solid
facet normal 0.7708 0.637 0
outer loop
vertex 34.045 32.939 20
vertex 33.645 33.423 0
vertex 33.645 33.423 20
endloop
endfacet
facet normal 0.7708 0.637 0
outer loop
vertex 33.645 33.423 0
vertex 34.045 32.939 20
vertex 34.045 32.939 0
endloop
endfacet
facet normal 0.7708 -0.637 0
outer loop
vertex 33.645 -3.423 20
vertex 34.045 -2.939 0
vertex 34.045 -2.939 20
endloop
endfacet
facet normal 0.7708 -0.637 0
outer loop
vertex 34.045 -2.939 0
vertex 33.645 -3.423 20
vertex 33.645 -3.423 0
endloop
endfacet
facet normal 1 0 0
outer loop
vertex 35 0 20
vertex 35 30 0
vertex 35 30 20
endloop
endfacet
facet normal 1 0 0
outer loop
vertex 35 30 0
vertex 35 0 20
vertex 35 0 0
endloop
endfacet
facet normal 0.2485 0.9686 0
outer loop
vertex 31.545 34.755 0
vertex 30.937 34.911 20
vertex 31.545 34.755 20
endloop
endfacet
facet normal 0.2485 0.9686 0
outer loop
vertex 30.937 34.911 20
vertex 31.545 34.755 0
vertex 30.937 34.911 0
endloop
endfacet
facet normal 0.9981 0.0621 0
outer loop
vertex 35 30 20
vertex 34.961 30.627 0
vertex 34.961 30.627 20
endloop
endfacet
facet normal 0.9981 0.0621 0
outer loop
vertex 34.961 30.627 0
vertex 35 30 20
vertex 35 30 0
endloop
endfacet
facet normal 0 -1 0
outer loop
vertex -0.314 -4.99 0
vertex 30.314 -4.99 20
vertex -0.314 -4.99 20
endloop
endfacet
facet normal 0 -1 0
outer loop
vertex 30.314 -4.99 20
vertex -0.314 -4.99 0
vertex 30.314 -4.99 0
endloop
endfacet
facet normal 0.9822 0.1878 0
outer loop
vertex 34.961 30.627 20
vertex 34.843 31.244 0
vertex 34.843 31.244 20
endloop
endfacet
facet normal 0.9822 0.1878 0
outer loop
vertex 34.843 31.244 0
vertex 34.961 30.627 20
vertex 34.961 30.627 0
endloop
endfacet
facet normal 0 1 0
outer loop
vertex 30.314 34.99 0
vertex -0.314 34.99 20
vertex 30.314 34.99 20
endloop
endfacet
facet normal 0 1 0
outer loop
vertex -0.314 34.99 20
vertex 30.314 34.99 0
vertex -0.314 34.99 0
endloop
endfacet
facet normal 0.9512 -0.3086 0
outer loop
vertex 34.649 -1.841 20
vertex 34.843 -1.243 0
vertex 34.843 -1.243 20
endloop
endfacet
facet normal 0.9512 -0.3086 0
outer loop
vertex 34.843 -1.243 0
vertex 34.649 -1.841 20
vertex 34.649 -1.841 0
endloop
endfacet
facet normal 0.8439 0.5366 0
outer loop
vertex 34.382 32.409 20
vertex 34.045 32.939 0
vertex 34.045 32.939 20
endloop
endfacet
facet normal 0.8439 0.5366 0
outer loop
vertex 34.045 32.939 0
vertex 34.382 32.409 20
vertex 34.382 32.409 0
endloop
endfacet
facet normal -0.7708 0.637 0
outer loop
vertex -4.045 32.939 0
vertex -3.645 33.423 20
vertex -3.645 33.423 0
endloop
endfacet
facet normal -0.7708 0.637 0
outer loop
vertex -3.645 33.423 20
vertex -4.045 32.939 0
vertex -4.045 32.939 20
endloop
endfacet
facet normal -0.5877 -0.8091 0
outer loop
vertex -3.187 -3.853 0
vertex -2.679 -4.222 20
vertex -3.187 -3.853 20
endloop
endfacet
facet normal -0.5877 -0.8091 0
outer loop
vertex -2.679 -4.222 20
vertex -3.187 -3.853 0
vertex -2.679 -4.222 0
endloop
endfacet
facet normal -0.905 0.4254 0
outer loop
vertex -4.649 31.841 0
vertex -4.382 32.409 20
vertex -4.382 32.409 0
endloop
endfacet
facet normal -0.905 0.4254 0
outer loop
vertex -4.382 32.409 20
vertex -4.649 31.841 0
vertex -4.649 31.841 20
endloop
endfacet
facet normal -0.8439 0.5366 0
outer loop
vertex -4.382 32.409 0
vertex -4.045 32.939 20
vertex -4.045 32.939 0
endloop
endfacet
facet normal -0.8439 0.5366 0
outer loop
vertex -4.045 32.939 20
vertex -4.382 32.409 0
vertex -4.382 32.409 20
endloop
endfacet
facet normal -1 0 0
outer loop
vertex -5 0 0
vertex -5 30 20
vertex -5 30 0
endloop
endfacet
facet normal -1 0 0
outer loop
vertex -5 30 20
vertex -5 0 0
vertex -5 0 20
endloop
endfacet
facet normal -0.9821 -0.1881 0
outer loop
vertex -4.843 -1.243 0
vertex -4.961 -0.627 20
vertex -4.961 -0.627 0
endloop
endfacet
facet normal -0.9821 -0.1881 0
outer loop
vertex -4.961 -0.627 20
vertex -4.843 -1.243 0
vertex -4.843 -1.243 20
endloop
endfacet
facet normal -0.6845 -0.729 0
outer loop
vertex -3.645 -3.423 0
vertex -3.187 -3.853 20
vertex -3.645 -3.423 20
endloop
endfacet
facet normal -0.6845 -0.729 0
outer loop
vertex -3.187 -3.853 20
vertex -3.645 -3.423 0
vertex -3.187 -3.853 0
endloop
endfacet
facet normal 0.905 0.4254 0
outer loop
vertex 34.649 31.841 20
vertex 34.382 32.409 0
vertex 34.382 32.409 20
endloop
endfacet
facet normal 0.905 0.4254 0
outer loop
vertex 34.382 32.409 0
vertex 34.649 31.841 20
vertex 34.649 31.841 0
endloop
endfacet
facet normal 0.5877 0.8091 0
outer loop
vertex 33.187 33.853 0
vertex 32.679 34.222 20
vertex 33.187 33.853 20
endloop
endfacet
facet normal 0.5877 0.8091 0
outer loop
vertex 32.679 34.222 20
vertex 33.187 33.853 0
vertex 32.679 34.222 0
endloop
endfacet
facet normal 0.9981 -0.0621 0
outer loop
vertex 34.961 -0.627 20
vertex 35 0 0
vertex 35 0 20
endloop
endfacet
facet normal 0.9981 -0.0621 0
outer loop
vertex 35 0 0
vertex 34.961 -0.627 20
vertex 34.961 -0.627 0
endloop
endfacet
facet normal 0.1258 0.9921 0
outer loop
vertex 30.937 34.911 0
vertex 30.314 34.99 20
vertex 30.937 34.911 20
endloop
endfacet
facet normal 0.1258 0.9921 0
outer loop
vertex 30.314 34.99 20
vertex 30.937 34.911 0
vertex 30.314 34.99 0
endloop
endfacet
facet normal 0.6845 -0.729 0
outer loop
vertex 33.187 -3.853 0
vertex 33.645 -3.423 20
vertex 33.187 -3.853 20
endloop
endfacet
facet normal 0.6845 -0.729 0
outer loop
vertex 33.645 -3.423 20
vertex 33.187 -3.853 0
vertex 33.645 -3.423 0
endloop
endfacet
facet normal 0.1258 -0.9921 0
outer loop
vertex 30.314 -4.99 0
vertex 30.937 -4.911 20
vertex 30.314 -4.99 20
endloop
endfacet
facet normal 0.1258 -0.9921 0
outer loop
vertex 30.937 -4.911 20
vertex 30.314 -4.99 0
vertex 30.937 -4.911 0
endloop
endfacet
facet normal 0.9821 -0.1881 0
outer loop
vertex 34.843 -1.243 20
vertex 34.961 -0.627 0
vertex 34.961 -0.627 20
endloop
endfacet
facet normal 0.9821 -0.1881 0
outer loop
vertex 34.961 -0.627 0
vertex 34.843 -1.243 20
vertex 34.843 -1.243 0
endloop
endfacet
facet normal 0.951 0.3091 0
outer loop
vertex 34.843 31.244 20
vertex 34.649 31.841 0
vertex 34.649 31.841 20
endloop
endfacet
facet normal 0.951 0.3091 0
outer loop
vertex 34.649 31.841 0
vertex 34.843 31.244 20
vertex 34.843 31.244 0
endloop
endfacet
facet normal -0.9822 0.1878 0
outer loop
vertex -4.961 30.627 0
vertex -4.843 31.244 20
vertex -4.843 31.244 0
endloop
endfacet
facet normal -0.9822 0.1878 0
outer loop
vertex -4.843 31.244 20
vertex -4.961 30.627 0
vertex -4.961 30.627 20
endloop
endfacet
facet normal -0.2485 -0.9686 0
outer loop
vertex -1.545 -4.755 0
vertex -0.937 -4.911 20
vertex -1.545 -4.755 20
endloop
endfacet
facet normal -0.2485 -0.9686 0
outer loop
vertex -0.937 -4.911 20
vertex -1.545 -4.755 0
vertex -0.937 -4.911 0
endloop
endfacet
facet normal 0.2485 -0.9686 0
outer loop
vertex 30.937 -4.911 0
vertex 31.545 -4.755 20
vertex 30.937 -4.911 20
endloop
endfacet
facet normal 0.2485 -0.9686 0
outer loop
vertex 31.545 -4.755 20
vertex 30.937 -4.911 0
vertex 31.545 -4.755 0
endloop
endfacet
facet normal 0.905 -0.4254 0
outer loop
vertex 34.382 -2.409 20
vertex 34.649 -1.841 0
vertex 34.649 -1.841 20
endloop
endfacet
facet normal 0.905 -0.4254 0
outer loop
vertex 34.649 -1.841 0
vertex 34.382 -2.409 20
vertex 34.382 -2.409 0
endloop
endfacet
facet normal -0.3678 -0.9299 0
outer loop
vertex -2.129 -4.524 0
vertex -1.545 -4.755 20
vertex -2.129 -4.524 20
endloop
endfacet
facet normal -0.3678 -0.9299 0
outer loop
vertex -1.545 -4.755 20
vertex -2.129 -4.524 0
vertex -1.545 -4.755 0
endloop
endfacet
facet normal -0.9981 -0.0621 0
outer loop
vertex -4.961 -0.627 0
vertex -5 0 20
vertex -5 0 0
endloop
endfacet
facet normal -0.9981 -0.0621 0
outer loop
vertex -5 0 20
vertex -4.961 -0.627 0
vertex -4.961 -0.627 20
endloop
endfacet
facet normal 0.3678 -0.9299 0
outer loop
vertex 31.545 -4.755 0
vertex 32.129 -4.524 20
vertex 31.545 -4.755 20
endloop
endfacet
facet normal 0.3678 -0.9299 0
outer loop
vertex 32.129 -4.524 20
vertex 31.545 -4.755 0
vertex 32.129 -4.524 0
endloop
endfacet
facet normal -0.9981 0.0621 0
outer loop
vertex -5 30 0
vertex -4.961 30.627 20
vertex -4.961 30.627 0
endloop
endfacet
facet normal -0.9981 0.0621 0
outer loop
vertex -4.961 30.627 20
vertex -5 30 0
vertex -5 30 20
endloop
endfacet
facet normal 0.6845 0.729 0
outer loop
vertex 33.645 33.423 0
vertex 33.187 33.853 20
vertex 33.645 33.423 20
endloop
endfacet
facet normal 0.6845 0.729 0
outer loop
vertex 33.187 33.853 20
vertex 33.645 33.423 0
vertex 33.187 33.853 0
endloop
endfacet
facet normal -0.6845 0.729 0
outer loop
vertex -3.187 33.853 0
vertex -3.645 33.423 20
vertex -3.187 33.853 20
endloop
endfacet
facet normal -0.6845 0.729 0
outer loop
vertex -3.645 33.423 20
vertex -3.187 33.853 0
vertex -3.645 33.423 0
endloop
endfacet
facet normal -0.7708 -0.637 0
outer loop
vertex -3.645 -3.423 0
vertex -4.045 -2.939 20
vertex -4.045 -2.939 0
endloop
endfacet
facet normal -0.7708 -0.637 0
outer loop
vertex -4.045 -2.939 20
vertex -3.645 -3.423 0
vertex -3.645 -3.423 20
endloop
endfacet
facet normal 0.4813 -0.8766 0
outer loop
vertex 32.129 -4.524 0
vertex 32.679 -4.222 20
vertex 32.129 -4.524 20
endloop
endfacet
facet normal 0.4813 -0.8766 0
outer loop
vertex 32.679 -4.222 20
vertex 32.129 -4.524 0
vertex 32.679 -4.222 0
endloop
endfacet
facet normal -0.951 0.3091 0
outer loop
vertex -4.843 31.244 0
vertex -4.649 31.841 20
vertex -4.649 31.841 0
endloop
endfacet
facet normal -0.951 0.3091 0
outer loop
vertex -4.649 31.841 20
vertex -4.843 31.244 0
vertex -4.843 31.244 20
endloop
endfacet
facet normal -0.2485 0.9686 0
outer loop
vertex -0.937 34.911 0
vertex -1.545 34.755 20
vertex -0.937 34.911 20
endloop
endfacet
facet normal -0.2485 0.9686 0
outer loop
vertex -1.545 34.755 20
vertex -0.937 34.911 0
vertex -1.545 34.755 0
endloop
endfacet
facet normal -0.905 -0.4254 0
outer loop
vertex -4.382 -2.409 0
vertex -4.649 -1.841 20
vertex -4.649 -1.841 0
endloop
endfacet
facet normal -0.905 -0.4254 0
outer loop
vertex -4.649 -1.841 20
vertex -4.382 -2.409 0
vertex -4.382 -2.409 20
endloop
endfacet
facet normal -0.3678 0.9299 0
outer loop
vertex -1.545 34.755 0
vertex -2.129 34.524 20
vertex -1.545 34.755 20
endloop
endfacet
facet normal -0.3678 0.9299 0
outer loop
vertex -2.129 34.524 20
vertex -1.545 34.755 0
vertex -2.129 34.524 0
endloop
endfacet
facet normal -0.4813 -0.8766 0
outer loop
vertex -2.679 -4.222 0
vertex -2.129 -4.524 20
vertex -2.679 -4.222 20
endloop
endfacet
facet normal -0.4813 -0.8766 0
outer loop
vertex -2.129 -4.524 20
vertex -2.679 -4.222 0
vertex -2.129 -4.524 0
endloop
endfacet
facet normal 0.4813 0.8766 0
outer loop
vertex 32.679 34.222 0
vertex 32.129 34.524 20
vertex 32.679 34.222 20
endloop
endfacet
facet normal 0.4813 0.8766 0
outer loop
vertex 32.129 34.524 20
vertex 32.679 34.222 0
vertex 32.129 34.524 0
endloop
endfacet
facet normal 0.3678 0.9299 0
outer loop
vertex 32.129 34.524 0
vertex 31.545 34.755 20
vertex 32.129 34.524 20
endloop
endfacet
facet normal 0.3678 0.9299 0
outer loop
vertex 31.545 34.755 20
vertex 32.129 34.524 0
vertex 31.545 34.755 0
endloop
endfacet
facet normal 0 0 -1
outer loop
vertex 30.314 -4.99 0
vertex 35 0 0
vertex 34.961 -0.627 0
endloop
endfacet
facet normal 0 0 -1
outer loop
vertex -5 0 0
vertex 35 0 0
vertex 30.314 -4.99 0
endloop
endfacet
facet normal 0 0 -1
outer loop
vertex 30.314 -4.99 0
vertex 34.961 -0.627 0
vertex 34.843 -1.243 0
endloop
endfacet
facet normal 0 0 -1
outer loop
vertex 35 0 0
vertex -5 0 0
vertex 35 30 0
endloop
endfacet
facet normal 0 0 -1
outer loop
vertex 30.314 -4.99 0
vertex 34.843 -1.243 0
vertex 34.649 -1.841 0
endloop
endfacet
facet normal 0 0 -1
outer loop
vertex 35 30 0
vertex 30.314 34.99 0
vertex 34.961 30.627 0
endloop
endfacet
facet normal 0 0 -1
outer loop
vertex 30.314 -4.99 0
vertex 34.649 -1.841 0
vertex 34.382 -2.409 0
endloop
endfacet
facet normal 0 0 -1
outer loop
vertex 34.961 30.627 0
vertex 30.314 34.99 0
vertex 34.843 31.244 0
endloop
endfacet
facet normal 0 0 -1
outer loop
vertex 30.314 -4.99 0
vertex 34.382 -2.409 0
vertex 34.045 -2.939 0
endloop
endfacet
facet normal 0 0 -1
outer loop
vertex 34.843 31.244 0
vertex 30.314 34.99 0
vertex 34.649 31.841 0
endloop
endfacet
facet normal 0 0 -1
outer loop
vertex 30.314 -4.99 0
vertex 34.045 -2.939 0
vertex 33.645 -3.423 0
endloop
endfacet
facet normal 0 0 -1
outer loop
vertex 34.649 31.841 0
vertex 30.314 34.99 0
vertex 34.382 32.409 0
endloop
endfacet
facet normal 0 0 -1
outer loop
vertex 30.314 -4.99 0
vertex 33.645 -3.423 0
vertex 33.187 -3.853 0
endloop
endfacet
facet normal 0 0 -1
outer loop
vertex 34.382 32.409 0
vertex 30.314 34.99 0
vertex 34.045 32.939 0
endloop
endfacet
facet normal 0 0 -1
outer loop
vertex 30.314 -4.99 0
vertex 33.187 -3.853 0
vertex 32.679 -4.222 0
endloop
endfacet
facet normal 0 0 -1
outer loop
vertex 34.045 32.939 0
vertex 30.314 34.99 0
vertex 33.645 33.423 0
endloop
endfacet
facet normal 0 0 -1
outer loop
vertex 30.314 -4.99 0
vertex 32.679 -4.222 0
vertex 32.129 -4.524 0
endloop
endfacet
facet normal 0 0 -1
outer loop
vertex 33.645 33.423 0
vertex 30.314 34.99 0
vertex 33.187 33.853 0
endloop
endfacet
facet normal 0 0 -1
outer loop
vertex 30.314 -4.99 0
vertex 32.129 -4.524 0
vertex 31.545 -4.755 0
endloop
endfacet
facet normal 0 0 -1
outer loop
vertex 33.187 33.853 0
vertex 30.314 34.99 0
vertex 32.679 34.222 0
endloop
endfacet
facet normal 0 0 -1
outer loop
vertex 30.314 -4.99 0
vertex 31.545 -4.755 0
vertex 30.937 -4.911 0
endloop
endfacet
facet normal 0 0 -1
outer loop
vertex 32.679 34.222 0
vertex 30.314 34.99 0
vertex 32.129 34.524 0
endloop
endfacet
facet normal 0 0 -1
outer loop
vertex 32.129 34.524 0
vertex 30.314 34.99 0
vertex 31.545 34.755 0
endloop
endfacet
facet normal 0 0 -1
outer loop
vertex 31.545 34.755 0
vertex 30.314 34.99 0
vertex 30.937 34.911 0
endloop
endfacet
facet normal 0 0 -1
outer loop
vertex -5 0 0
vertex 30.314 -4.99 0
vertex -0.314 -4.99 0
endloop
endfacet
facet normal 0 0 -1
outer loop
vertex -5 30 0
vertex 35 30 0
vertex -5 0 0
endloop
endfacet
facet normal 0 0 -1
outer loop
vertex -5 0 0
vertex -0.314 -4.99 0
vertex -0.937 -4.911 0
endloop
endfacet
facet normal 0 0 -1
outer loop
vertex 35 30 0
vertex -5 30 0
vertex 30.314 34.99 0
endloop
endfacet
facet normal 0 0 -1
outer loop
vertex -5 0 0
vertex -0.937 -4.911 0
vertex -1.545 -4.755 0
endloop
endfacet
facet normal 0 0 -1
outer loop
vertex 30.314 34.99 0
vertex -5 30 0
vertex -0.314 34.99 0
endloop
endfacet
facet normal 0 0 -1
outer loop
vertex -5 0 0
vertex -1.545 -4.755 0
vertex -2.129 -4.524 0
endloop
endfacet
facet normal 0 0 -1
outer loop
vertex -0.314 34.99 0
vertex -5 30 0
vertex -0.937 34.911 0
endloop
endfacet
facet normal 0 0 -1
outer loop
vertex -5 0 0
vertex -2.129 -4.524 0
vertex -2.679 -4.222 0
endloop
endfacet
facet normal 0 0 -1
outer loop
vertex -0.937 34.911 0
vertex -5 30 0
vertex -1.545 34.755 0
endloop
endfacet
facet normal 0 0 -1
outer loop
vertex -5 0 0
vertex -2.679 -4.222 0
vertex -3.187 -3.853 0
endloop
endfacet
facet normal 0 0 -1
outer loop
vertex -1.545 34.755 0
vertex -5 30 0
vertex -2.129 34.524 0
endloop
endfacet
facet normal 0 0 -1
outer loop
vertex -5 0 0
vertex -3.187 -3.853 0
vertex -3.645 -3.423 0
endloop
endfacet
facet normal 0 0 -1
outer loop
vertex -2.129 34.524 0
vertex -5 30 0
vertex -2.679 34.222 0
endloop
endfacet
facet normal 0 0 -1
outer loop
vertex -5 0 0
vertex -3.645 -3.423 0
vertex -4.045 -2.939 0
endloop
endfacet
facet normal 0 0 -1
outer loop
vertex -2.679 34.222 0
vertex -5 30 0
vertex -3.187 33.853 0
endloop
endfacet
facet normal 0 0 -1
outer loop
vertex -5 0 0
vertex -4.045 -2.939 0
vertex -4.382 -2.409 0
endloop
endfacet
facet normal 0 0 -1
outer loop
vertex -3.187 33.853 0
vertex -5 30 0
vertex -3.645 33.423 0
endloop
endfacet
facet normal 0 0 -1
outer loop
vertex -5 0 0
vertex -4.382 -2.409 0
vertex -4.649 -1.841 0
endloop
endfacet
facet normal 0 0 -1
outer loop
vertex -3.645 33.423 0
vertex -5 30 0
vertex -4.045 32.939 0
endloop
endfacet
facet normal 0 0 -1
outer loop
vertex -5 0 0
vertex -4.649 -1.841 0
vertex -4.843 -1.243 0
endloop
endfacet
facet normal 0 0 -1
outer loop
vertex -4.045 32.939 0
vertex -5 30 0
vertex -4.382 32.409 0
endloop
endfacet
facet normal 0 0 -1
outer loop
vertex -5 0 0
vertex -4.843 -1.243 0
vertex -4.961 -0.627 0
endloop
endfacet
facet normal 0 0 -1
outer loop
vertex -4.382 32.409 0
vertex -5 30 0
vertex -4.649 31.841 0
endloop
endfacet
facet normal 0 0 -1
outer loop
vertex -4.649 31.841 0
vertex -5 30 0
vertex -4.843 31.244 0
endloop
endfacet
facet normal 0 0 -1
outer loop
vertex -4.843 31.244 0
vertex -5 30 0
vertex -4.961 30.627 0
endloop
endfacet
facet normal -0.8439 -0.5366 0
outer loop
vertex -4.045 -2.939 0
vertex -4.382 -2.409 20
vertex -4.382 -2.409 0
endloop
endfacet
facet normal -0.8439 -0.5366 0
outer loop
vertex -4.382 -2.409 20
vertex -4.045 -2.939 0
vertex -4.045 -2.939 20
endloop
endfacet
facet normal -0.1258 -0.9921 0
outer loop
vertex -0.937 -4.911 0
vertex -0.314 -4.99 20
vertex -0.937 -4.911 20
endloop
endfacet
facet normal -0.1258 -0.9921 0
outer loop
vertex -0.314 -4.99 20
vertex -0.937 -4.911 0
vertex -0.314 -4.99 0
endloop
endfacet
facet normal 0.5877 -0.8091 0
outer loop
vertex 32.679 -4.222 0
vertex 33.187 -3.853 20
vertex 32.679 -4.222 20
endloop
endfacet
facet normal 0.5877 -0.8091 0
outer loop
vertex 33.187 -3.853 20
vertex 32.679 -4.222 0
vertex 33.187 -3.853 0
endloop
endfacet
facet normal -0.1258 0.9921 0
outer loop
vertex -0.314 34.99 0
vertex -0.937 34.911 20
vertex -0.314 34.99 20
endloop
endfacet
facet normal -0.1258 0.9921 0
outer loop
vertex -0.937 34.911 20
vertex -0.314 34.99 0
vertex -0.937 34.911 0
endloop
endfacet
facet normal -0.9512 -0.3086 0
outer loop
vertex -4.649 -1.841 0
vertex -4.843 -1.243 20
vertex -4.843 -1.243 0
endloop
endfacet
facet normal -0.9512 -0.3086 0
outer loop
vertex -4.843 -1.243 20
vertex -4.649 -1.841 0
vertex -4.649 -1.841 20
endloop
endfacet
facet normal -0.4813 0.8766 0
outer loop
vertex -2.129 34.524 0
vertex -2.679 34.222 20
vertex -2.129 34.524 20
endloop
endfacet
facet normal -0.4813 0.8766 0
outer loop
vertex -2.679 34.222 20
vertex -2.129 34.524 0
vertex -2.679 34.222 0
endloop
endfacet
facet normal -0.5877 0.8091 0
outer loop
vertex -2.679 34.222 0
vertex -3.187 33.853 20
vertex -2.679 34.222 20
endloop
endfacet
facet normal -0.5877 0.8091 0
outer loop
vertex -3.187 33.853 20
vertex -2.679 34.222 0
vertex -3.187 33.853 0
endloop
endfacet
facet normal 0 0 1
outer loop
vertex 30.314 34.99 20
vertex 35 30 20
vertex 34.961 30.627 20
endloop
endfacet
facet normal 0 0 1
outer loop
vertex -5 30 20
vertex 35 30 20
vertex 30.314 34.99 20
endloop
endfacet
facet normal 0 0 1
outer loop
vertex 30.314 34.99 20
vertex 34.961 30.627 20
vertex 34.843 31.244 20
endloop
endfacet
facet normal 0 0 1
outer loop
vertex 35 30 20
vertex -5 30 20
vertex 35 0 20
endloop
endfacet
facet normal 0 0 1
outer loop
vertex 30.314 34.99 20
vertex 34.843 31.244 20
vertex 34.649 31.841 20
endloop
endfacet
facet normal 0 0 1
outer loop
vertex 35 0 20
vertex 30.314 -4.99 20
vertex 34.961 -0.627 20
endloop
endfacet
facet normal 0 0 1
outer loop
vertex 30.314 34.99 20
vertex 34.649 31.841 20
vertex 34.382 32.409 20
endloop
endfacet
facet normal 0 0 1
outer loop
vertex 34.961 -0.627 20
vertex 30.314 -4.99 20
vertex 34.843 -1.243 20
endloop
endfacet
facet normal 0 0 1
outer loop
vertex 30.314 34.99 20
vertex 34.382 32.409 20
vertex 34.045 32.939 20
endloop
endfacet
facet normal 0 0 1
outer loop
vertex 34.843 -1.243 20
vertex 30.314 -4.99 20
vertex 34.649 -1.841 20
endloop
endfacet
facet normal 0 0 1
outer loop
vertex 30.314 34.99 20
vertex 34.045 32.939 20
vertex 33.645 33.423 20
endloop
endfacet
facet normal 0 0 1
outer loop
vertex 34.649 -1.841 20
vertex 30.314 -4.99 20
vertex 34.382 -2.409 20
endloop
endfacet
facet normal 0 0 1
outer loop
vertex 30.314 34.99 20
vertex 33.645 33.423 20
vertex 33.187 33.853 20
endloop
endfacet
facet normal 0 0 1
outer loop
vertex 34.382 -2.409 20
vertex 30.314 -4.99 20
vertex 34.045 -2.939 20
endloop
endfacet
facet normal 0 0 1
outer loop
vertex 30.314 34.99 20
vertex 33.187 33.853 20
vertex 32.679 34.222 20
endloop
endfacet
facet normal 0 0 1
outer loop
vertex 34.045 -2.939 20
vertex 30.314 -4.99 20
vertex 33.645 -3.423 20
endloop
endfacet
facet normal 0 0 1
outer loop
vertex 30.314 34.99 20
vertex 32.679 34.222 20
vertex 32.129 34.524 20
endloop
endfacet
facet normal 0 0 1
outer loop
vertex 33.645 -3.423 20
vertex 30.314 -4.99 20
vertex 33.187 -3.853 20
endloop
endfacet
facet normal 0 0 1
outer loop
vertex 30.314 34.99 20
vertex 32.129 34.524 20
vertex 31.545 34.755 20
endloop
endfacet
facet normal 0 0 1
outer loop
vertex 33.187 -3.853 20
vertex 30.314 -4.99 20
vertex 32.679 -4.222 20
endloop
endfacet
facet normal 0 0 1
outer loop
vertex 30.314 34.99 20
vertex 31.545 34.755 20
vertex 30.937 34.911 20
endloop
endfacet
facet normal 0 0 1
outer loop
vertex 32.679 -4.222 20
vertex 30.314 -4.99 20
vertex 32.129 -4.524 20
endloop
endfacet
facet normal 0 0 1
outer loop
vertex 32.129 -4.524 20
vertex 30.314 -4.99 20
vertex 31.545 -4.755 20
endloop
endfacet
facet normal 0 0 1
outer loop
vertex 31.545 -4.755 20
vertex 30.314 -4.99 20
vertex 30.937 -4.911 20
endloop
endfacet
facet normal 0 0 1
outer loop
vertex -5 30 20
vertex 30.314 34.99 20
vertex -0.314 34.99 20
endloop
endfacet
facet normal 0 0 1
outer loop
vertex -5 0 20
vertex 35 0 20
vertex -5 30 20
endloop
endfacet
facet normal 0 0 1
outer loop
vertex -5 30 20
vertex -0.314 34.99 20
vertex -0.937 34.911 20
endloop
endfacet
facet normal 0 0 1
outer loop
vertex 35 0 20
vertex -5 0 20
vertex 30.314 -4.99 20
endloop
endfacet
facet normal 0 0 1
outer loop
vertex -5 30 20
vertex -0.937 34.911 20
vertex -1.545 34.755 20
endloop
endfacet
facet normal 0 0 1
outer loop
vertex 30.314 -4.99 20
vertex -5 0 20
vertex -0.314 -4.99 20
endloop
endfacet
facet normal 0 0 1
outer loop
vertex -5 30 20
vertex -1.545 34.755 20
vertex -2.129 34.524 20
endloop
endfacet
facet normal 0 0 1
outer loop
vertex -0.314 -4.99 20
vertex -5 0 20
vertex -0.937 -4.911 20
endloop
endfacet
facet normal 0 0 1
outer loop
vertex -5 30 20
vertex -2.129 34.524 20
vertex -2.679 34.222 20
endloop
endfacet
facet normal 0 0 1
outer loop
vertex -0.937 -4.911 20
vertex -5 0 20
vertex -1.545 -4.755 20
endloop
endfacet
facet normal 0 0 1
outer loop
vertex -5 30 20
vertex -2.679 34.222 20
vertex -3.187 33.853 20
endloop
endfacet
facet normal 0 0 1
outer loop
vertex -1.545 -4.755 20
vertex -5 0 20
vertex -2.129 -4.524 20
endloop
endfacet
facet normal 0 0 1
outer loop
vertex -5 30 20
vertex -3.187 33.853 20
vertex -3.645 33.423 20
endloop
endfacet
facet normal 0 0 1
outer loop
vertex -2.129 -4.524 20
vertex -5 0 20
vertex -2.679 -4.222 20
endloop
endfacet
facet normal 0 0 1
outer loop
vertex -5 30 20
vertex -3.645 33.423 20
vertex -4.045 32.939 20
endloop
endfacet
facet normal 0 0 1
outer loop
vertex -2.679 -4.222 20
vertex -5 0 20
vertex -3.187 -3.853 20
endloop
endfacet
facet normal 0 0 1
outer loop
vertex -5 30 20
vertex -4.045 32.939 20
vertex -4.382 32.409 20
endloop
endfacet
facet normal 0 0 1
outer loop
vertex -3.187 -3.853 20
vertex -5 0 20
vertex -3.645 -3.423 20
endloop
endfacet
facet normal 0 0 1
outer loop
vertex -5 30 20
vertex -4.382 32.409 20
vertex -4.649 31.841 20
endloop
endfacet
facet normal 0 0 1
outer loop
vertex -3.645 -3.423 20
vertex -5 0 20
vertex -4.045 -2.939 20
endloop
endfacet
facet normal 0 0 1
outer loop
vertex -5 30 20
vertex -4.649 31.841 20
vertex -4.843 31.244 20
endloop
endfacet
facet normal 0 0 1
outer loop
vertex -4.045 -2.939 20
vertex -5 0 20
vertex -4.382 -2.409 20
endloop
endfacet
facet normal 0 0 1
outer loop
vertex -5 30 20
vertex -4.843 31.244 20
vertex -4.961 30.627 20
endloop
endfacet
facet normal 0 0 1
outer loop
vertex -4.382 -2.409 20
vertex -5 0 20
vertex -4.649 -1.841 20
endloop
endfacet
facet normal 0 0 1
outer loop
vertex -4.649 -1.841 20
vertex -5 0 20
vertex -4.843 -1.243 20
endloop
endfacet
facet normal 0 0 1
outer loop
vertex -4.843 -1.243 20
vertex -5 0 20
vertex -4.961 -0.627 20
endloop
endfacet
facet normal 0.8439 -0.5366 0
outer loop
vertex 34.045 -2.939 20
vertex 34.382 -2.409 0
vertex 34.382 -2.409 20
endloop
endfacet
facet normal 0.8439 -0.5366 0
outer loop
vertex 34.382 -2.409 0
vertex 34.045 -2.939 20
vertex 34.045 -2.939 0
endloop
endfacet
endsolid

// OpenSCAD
// Parameters
block_length = 40;
block_width = 40;
block_height = 20;
corner_radius = 5;

// Rounded top block
module rounded_edge_block() {
    difference() {
        // Main block with extra height for rounding
        minkowski() {
            cube([block_length - 2*corner_radius, block_width - 2*corner_radius, block_height - corner_radius], center=false);
            translate([0, 0, 0])
                cylinder(h=corner_radius, r=corner_radius, $fn=50);
        }
        // Cut bottom to make bottom edges sharp
        translate([-10, -10, -10])
            cube([block_length + 20, block_width + 20, corner_radius], center=false);
    }
}

// Render the block
rounded_edge_block();
